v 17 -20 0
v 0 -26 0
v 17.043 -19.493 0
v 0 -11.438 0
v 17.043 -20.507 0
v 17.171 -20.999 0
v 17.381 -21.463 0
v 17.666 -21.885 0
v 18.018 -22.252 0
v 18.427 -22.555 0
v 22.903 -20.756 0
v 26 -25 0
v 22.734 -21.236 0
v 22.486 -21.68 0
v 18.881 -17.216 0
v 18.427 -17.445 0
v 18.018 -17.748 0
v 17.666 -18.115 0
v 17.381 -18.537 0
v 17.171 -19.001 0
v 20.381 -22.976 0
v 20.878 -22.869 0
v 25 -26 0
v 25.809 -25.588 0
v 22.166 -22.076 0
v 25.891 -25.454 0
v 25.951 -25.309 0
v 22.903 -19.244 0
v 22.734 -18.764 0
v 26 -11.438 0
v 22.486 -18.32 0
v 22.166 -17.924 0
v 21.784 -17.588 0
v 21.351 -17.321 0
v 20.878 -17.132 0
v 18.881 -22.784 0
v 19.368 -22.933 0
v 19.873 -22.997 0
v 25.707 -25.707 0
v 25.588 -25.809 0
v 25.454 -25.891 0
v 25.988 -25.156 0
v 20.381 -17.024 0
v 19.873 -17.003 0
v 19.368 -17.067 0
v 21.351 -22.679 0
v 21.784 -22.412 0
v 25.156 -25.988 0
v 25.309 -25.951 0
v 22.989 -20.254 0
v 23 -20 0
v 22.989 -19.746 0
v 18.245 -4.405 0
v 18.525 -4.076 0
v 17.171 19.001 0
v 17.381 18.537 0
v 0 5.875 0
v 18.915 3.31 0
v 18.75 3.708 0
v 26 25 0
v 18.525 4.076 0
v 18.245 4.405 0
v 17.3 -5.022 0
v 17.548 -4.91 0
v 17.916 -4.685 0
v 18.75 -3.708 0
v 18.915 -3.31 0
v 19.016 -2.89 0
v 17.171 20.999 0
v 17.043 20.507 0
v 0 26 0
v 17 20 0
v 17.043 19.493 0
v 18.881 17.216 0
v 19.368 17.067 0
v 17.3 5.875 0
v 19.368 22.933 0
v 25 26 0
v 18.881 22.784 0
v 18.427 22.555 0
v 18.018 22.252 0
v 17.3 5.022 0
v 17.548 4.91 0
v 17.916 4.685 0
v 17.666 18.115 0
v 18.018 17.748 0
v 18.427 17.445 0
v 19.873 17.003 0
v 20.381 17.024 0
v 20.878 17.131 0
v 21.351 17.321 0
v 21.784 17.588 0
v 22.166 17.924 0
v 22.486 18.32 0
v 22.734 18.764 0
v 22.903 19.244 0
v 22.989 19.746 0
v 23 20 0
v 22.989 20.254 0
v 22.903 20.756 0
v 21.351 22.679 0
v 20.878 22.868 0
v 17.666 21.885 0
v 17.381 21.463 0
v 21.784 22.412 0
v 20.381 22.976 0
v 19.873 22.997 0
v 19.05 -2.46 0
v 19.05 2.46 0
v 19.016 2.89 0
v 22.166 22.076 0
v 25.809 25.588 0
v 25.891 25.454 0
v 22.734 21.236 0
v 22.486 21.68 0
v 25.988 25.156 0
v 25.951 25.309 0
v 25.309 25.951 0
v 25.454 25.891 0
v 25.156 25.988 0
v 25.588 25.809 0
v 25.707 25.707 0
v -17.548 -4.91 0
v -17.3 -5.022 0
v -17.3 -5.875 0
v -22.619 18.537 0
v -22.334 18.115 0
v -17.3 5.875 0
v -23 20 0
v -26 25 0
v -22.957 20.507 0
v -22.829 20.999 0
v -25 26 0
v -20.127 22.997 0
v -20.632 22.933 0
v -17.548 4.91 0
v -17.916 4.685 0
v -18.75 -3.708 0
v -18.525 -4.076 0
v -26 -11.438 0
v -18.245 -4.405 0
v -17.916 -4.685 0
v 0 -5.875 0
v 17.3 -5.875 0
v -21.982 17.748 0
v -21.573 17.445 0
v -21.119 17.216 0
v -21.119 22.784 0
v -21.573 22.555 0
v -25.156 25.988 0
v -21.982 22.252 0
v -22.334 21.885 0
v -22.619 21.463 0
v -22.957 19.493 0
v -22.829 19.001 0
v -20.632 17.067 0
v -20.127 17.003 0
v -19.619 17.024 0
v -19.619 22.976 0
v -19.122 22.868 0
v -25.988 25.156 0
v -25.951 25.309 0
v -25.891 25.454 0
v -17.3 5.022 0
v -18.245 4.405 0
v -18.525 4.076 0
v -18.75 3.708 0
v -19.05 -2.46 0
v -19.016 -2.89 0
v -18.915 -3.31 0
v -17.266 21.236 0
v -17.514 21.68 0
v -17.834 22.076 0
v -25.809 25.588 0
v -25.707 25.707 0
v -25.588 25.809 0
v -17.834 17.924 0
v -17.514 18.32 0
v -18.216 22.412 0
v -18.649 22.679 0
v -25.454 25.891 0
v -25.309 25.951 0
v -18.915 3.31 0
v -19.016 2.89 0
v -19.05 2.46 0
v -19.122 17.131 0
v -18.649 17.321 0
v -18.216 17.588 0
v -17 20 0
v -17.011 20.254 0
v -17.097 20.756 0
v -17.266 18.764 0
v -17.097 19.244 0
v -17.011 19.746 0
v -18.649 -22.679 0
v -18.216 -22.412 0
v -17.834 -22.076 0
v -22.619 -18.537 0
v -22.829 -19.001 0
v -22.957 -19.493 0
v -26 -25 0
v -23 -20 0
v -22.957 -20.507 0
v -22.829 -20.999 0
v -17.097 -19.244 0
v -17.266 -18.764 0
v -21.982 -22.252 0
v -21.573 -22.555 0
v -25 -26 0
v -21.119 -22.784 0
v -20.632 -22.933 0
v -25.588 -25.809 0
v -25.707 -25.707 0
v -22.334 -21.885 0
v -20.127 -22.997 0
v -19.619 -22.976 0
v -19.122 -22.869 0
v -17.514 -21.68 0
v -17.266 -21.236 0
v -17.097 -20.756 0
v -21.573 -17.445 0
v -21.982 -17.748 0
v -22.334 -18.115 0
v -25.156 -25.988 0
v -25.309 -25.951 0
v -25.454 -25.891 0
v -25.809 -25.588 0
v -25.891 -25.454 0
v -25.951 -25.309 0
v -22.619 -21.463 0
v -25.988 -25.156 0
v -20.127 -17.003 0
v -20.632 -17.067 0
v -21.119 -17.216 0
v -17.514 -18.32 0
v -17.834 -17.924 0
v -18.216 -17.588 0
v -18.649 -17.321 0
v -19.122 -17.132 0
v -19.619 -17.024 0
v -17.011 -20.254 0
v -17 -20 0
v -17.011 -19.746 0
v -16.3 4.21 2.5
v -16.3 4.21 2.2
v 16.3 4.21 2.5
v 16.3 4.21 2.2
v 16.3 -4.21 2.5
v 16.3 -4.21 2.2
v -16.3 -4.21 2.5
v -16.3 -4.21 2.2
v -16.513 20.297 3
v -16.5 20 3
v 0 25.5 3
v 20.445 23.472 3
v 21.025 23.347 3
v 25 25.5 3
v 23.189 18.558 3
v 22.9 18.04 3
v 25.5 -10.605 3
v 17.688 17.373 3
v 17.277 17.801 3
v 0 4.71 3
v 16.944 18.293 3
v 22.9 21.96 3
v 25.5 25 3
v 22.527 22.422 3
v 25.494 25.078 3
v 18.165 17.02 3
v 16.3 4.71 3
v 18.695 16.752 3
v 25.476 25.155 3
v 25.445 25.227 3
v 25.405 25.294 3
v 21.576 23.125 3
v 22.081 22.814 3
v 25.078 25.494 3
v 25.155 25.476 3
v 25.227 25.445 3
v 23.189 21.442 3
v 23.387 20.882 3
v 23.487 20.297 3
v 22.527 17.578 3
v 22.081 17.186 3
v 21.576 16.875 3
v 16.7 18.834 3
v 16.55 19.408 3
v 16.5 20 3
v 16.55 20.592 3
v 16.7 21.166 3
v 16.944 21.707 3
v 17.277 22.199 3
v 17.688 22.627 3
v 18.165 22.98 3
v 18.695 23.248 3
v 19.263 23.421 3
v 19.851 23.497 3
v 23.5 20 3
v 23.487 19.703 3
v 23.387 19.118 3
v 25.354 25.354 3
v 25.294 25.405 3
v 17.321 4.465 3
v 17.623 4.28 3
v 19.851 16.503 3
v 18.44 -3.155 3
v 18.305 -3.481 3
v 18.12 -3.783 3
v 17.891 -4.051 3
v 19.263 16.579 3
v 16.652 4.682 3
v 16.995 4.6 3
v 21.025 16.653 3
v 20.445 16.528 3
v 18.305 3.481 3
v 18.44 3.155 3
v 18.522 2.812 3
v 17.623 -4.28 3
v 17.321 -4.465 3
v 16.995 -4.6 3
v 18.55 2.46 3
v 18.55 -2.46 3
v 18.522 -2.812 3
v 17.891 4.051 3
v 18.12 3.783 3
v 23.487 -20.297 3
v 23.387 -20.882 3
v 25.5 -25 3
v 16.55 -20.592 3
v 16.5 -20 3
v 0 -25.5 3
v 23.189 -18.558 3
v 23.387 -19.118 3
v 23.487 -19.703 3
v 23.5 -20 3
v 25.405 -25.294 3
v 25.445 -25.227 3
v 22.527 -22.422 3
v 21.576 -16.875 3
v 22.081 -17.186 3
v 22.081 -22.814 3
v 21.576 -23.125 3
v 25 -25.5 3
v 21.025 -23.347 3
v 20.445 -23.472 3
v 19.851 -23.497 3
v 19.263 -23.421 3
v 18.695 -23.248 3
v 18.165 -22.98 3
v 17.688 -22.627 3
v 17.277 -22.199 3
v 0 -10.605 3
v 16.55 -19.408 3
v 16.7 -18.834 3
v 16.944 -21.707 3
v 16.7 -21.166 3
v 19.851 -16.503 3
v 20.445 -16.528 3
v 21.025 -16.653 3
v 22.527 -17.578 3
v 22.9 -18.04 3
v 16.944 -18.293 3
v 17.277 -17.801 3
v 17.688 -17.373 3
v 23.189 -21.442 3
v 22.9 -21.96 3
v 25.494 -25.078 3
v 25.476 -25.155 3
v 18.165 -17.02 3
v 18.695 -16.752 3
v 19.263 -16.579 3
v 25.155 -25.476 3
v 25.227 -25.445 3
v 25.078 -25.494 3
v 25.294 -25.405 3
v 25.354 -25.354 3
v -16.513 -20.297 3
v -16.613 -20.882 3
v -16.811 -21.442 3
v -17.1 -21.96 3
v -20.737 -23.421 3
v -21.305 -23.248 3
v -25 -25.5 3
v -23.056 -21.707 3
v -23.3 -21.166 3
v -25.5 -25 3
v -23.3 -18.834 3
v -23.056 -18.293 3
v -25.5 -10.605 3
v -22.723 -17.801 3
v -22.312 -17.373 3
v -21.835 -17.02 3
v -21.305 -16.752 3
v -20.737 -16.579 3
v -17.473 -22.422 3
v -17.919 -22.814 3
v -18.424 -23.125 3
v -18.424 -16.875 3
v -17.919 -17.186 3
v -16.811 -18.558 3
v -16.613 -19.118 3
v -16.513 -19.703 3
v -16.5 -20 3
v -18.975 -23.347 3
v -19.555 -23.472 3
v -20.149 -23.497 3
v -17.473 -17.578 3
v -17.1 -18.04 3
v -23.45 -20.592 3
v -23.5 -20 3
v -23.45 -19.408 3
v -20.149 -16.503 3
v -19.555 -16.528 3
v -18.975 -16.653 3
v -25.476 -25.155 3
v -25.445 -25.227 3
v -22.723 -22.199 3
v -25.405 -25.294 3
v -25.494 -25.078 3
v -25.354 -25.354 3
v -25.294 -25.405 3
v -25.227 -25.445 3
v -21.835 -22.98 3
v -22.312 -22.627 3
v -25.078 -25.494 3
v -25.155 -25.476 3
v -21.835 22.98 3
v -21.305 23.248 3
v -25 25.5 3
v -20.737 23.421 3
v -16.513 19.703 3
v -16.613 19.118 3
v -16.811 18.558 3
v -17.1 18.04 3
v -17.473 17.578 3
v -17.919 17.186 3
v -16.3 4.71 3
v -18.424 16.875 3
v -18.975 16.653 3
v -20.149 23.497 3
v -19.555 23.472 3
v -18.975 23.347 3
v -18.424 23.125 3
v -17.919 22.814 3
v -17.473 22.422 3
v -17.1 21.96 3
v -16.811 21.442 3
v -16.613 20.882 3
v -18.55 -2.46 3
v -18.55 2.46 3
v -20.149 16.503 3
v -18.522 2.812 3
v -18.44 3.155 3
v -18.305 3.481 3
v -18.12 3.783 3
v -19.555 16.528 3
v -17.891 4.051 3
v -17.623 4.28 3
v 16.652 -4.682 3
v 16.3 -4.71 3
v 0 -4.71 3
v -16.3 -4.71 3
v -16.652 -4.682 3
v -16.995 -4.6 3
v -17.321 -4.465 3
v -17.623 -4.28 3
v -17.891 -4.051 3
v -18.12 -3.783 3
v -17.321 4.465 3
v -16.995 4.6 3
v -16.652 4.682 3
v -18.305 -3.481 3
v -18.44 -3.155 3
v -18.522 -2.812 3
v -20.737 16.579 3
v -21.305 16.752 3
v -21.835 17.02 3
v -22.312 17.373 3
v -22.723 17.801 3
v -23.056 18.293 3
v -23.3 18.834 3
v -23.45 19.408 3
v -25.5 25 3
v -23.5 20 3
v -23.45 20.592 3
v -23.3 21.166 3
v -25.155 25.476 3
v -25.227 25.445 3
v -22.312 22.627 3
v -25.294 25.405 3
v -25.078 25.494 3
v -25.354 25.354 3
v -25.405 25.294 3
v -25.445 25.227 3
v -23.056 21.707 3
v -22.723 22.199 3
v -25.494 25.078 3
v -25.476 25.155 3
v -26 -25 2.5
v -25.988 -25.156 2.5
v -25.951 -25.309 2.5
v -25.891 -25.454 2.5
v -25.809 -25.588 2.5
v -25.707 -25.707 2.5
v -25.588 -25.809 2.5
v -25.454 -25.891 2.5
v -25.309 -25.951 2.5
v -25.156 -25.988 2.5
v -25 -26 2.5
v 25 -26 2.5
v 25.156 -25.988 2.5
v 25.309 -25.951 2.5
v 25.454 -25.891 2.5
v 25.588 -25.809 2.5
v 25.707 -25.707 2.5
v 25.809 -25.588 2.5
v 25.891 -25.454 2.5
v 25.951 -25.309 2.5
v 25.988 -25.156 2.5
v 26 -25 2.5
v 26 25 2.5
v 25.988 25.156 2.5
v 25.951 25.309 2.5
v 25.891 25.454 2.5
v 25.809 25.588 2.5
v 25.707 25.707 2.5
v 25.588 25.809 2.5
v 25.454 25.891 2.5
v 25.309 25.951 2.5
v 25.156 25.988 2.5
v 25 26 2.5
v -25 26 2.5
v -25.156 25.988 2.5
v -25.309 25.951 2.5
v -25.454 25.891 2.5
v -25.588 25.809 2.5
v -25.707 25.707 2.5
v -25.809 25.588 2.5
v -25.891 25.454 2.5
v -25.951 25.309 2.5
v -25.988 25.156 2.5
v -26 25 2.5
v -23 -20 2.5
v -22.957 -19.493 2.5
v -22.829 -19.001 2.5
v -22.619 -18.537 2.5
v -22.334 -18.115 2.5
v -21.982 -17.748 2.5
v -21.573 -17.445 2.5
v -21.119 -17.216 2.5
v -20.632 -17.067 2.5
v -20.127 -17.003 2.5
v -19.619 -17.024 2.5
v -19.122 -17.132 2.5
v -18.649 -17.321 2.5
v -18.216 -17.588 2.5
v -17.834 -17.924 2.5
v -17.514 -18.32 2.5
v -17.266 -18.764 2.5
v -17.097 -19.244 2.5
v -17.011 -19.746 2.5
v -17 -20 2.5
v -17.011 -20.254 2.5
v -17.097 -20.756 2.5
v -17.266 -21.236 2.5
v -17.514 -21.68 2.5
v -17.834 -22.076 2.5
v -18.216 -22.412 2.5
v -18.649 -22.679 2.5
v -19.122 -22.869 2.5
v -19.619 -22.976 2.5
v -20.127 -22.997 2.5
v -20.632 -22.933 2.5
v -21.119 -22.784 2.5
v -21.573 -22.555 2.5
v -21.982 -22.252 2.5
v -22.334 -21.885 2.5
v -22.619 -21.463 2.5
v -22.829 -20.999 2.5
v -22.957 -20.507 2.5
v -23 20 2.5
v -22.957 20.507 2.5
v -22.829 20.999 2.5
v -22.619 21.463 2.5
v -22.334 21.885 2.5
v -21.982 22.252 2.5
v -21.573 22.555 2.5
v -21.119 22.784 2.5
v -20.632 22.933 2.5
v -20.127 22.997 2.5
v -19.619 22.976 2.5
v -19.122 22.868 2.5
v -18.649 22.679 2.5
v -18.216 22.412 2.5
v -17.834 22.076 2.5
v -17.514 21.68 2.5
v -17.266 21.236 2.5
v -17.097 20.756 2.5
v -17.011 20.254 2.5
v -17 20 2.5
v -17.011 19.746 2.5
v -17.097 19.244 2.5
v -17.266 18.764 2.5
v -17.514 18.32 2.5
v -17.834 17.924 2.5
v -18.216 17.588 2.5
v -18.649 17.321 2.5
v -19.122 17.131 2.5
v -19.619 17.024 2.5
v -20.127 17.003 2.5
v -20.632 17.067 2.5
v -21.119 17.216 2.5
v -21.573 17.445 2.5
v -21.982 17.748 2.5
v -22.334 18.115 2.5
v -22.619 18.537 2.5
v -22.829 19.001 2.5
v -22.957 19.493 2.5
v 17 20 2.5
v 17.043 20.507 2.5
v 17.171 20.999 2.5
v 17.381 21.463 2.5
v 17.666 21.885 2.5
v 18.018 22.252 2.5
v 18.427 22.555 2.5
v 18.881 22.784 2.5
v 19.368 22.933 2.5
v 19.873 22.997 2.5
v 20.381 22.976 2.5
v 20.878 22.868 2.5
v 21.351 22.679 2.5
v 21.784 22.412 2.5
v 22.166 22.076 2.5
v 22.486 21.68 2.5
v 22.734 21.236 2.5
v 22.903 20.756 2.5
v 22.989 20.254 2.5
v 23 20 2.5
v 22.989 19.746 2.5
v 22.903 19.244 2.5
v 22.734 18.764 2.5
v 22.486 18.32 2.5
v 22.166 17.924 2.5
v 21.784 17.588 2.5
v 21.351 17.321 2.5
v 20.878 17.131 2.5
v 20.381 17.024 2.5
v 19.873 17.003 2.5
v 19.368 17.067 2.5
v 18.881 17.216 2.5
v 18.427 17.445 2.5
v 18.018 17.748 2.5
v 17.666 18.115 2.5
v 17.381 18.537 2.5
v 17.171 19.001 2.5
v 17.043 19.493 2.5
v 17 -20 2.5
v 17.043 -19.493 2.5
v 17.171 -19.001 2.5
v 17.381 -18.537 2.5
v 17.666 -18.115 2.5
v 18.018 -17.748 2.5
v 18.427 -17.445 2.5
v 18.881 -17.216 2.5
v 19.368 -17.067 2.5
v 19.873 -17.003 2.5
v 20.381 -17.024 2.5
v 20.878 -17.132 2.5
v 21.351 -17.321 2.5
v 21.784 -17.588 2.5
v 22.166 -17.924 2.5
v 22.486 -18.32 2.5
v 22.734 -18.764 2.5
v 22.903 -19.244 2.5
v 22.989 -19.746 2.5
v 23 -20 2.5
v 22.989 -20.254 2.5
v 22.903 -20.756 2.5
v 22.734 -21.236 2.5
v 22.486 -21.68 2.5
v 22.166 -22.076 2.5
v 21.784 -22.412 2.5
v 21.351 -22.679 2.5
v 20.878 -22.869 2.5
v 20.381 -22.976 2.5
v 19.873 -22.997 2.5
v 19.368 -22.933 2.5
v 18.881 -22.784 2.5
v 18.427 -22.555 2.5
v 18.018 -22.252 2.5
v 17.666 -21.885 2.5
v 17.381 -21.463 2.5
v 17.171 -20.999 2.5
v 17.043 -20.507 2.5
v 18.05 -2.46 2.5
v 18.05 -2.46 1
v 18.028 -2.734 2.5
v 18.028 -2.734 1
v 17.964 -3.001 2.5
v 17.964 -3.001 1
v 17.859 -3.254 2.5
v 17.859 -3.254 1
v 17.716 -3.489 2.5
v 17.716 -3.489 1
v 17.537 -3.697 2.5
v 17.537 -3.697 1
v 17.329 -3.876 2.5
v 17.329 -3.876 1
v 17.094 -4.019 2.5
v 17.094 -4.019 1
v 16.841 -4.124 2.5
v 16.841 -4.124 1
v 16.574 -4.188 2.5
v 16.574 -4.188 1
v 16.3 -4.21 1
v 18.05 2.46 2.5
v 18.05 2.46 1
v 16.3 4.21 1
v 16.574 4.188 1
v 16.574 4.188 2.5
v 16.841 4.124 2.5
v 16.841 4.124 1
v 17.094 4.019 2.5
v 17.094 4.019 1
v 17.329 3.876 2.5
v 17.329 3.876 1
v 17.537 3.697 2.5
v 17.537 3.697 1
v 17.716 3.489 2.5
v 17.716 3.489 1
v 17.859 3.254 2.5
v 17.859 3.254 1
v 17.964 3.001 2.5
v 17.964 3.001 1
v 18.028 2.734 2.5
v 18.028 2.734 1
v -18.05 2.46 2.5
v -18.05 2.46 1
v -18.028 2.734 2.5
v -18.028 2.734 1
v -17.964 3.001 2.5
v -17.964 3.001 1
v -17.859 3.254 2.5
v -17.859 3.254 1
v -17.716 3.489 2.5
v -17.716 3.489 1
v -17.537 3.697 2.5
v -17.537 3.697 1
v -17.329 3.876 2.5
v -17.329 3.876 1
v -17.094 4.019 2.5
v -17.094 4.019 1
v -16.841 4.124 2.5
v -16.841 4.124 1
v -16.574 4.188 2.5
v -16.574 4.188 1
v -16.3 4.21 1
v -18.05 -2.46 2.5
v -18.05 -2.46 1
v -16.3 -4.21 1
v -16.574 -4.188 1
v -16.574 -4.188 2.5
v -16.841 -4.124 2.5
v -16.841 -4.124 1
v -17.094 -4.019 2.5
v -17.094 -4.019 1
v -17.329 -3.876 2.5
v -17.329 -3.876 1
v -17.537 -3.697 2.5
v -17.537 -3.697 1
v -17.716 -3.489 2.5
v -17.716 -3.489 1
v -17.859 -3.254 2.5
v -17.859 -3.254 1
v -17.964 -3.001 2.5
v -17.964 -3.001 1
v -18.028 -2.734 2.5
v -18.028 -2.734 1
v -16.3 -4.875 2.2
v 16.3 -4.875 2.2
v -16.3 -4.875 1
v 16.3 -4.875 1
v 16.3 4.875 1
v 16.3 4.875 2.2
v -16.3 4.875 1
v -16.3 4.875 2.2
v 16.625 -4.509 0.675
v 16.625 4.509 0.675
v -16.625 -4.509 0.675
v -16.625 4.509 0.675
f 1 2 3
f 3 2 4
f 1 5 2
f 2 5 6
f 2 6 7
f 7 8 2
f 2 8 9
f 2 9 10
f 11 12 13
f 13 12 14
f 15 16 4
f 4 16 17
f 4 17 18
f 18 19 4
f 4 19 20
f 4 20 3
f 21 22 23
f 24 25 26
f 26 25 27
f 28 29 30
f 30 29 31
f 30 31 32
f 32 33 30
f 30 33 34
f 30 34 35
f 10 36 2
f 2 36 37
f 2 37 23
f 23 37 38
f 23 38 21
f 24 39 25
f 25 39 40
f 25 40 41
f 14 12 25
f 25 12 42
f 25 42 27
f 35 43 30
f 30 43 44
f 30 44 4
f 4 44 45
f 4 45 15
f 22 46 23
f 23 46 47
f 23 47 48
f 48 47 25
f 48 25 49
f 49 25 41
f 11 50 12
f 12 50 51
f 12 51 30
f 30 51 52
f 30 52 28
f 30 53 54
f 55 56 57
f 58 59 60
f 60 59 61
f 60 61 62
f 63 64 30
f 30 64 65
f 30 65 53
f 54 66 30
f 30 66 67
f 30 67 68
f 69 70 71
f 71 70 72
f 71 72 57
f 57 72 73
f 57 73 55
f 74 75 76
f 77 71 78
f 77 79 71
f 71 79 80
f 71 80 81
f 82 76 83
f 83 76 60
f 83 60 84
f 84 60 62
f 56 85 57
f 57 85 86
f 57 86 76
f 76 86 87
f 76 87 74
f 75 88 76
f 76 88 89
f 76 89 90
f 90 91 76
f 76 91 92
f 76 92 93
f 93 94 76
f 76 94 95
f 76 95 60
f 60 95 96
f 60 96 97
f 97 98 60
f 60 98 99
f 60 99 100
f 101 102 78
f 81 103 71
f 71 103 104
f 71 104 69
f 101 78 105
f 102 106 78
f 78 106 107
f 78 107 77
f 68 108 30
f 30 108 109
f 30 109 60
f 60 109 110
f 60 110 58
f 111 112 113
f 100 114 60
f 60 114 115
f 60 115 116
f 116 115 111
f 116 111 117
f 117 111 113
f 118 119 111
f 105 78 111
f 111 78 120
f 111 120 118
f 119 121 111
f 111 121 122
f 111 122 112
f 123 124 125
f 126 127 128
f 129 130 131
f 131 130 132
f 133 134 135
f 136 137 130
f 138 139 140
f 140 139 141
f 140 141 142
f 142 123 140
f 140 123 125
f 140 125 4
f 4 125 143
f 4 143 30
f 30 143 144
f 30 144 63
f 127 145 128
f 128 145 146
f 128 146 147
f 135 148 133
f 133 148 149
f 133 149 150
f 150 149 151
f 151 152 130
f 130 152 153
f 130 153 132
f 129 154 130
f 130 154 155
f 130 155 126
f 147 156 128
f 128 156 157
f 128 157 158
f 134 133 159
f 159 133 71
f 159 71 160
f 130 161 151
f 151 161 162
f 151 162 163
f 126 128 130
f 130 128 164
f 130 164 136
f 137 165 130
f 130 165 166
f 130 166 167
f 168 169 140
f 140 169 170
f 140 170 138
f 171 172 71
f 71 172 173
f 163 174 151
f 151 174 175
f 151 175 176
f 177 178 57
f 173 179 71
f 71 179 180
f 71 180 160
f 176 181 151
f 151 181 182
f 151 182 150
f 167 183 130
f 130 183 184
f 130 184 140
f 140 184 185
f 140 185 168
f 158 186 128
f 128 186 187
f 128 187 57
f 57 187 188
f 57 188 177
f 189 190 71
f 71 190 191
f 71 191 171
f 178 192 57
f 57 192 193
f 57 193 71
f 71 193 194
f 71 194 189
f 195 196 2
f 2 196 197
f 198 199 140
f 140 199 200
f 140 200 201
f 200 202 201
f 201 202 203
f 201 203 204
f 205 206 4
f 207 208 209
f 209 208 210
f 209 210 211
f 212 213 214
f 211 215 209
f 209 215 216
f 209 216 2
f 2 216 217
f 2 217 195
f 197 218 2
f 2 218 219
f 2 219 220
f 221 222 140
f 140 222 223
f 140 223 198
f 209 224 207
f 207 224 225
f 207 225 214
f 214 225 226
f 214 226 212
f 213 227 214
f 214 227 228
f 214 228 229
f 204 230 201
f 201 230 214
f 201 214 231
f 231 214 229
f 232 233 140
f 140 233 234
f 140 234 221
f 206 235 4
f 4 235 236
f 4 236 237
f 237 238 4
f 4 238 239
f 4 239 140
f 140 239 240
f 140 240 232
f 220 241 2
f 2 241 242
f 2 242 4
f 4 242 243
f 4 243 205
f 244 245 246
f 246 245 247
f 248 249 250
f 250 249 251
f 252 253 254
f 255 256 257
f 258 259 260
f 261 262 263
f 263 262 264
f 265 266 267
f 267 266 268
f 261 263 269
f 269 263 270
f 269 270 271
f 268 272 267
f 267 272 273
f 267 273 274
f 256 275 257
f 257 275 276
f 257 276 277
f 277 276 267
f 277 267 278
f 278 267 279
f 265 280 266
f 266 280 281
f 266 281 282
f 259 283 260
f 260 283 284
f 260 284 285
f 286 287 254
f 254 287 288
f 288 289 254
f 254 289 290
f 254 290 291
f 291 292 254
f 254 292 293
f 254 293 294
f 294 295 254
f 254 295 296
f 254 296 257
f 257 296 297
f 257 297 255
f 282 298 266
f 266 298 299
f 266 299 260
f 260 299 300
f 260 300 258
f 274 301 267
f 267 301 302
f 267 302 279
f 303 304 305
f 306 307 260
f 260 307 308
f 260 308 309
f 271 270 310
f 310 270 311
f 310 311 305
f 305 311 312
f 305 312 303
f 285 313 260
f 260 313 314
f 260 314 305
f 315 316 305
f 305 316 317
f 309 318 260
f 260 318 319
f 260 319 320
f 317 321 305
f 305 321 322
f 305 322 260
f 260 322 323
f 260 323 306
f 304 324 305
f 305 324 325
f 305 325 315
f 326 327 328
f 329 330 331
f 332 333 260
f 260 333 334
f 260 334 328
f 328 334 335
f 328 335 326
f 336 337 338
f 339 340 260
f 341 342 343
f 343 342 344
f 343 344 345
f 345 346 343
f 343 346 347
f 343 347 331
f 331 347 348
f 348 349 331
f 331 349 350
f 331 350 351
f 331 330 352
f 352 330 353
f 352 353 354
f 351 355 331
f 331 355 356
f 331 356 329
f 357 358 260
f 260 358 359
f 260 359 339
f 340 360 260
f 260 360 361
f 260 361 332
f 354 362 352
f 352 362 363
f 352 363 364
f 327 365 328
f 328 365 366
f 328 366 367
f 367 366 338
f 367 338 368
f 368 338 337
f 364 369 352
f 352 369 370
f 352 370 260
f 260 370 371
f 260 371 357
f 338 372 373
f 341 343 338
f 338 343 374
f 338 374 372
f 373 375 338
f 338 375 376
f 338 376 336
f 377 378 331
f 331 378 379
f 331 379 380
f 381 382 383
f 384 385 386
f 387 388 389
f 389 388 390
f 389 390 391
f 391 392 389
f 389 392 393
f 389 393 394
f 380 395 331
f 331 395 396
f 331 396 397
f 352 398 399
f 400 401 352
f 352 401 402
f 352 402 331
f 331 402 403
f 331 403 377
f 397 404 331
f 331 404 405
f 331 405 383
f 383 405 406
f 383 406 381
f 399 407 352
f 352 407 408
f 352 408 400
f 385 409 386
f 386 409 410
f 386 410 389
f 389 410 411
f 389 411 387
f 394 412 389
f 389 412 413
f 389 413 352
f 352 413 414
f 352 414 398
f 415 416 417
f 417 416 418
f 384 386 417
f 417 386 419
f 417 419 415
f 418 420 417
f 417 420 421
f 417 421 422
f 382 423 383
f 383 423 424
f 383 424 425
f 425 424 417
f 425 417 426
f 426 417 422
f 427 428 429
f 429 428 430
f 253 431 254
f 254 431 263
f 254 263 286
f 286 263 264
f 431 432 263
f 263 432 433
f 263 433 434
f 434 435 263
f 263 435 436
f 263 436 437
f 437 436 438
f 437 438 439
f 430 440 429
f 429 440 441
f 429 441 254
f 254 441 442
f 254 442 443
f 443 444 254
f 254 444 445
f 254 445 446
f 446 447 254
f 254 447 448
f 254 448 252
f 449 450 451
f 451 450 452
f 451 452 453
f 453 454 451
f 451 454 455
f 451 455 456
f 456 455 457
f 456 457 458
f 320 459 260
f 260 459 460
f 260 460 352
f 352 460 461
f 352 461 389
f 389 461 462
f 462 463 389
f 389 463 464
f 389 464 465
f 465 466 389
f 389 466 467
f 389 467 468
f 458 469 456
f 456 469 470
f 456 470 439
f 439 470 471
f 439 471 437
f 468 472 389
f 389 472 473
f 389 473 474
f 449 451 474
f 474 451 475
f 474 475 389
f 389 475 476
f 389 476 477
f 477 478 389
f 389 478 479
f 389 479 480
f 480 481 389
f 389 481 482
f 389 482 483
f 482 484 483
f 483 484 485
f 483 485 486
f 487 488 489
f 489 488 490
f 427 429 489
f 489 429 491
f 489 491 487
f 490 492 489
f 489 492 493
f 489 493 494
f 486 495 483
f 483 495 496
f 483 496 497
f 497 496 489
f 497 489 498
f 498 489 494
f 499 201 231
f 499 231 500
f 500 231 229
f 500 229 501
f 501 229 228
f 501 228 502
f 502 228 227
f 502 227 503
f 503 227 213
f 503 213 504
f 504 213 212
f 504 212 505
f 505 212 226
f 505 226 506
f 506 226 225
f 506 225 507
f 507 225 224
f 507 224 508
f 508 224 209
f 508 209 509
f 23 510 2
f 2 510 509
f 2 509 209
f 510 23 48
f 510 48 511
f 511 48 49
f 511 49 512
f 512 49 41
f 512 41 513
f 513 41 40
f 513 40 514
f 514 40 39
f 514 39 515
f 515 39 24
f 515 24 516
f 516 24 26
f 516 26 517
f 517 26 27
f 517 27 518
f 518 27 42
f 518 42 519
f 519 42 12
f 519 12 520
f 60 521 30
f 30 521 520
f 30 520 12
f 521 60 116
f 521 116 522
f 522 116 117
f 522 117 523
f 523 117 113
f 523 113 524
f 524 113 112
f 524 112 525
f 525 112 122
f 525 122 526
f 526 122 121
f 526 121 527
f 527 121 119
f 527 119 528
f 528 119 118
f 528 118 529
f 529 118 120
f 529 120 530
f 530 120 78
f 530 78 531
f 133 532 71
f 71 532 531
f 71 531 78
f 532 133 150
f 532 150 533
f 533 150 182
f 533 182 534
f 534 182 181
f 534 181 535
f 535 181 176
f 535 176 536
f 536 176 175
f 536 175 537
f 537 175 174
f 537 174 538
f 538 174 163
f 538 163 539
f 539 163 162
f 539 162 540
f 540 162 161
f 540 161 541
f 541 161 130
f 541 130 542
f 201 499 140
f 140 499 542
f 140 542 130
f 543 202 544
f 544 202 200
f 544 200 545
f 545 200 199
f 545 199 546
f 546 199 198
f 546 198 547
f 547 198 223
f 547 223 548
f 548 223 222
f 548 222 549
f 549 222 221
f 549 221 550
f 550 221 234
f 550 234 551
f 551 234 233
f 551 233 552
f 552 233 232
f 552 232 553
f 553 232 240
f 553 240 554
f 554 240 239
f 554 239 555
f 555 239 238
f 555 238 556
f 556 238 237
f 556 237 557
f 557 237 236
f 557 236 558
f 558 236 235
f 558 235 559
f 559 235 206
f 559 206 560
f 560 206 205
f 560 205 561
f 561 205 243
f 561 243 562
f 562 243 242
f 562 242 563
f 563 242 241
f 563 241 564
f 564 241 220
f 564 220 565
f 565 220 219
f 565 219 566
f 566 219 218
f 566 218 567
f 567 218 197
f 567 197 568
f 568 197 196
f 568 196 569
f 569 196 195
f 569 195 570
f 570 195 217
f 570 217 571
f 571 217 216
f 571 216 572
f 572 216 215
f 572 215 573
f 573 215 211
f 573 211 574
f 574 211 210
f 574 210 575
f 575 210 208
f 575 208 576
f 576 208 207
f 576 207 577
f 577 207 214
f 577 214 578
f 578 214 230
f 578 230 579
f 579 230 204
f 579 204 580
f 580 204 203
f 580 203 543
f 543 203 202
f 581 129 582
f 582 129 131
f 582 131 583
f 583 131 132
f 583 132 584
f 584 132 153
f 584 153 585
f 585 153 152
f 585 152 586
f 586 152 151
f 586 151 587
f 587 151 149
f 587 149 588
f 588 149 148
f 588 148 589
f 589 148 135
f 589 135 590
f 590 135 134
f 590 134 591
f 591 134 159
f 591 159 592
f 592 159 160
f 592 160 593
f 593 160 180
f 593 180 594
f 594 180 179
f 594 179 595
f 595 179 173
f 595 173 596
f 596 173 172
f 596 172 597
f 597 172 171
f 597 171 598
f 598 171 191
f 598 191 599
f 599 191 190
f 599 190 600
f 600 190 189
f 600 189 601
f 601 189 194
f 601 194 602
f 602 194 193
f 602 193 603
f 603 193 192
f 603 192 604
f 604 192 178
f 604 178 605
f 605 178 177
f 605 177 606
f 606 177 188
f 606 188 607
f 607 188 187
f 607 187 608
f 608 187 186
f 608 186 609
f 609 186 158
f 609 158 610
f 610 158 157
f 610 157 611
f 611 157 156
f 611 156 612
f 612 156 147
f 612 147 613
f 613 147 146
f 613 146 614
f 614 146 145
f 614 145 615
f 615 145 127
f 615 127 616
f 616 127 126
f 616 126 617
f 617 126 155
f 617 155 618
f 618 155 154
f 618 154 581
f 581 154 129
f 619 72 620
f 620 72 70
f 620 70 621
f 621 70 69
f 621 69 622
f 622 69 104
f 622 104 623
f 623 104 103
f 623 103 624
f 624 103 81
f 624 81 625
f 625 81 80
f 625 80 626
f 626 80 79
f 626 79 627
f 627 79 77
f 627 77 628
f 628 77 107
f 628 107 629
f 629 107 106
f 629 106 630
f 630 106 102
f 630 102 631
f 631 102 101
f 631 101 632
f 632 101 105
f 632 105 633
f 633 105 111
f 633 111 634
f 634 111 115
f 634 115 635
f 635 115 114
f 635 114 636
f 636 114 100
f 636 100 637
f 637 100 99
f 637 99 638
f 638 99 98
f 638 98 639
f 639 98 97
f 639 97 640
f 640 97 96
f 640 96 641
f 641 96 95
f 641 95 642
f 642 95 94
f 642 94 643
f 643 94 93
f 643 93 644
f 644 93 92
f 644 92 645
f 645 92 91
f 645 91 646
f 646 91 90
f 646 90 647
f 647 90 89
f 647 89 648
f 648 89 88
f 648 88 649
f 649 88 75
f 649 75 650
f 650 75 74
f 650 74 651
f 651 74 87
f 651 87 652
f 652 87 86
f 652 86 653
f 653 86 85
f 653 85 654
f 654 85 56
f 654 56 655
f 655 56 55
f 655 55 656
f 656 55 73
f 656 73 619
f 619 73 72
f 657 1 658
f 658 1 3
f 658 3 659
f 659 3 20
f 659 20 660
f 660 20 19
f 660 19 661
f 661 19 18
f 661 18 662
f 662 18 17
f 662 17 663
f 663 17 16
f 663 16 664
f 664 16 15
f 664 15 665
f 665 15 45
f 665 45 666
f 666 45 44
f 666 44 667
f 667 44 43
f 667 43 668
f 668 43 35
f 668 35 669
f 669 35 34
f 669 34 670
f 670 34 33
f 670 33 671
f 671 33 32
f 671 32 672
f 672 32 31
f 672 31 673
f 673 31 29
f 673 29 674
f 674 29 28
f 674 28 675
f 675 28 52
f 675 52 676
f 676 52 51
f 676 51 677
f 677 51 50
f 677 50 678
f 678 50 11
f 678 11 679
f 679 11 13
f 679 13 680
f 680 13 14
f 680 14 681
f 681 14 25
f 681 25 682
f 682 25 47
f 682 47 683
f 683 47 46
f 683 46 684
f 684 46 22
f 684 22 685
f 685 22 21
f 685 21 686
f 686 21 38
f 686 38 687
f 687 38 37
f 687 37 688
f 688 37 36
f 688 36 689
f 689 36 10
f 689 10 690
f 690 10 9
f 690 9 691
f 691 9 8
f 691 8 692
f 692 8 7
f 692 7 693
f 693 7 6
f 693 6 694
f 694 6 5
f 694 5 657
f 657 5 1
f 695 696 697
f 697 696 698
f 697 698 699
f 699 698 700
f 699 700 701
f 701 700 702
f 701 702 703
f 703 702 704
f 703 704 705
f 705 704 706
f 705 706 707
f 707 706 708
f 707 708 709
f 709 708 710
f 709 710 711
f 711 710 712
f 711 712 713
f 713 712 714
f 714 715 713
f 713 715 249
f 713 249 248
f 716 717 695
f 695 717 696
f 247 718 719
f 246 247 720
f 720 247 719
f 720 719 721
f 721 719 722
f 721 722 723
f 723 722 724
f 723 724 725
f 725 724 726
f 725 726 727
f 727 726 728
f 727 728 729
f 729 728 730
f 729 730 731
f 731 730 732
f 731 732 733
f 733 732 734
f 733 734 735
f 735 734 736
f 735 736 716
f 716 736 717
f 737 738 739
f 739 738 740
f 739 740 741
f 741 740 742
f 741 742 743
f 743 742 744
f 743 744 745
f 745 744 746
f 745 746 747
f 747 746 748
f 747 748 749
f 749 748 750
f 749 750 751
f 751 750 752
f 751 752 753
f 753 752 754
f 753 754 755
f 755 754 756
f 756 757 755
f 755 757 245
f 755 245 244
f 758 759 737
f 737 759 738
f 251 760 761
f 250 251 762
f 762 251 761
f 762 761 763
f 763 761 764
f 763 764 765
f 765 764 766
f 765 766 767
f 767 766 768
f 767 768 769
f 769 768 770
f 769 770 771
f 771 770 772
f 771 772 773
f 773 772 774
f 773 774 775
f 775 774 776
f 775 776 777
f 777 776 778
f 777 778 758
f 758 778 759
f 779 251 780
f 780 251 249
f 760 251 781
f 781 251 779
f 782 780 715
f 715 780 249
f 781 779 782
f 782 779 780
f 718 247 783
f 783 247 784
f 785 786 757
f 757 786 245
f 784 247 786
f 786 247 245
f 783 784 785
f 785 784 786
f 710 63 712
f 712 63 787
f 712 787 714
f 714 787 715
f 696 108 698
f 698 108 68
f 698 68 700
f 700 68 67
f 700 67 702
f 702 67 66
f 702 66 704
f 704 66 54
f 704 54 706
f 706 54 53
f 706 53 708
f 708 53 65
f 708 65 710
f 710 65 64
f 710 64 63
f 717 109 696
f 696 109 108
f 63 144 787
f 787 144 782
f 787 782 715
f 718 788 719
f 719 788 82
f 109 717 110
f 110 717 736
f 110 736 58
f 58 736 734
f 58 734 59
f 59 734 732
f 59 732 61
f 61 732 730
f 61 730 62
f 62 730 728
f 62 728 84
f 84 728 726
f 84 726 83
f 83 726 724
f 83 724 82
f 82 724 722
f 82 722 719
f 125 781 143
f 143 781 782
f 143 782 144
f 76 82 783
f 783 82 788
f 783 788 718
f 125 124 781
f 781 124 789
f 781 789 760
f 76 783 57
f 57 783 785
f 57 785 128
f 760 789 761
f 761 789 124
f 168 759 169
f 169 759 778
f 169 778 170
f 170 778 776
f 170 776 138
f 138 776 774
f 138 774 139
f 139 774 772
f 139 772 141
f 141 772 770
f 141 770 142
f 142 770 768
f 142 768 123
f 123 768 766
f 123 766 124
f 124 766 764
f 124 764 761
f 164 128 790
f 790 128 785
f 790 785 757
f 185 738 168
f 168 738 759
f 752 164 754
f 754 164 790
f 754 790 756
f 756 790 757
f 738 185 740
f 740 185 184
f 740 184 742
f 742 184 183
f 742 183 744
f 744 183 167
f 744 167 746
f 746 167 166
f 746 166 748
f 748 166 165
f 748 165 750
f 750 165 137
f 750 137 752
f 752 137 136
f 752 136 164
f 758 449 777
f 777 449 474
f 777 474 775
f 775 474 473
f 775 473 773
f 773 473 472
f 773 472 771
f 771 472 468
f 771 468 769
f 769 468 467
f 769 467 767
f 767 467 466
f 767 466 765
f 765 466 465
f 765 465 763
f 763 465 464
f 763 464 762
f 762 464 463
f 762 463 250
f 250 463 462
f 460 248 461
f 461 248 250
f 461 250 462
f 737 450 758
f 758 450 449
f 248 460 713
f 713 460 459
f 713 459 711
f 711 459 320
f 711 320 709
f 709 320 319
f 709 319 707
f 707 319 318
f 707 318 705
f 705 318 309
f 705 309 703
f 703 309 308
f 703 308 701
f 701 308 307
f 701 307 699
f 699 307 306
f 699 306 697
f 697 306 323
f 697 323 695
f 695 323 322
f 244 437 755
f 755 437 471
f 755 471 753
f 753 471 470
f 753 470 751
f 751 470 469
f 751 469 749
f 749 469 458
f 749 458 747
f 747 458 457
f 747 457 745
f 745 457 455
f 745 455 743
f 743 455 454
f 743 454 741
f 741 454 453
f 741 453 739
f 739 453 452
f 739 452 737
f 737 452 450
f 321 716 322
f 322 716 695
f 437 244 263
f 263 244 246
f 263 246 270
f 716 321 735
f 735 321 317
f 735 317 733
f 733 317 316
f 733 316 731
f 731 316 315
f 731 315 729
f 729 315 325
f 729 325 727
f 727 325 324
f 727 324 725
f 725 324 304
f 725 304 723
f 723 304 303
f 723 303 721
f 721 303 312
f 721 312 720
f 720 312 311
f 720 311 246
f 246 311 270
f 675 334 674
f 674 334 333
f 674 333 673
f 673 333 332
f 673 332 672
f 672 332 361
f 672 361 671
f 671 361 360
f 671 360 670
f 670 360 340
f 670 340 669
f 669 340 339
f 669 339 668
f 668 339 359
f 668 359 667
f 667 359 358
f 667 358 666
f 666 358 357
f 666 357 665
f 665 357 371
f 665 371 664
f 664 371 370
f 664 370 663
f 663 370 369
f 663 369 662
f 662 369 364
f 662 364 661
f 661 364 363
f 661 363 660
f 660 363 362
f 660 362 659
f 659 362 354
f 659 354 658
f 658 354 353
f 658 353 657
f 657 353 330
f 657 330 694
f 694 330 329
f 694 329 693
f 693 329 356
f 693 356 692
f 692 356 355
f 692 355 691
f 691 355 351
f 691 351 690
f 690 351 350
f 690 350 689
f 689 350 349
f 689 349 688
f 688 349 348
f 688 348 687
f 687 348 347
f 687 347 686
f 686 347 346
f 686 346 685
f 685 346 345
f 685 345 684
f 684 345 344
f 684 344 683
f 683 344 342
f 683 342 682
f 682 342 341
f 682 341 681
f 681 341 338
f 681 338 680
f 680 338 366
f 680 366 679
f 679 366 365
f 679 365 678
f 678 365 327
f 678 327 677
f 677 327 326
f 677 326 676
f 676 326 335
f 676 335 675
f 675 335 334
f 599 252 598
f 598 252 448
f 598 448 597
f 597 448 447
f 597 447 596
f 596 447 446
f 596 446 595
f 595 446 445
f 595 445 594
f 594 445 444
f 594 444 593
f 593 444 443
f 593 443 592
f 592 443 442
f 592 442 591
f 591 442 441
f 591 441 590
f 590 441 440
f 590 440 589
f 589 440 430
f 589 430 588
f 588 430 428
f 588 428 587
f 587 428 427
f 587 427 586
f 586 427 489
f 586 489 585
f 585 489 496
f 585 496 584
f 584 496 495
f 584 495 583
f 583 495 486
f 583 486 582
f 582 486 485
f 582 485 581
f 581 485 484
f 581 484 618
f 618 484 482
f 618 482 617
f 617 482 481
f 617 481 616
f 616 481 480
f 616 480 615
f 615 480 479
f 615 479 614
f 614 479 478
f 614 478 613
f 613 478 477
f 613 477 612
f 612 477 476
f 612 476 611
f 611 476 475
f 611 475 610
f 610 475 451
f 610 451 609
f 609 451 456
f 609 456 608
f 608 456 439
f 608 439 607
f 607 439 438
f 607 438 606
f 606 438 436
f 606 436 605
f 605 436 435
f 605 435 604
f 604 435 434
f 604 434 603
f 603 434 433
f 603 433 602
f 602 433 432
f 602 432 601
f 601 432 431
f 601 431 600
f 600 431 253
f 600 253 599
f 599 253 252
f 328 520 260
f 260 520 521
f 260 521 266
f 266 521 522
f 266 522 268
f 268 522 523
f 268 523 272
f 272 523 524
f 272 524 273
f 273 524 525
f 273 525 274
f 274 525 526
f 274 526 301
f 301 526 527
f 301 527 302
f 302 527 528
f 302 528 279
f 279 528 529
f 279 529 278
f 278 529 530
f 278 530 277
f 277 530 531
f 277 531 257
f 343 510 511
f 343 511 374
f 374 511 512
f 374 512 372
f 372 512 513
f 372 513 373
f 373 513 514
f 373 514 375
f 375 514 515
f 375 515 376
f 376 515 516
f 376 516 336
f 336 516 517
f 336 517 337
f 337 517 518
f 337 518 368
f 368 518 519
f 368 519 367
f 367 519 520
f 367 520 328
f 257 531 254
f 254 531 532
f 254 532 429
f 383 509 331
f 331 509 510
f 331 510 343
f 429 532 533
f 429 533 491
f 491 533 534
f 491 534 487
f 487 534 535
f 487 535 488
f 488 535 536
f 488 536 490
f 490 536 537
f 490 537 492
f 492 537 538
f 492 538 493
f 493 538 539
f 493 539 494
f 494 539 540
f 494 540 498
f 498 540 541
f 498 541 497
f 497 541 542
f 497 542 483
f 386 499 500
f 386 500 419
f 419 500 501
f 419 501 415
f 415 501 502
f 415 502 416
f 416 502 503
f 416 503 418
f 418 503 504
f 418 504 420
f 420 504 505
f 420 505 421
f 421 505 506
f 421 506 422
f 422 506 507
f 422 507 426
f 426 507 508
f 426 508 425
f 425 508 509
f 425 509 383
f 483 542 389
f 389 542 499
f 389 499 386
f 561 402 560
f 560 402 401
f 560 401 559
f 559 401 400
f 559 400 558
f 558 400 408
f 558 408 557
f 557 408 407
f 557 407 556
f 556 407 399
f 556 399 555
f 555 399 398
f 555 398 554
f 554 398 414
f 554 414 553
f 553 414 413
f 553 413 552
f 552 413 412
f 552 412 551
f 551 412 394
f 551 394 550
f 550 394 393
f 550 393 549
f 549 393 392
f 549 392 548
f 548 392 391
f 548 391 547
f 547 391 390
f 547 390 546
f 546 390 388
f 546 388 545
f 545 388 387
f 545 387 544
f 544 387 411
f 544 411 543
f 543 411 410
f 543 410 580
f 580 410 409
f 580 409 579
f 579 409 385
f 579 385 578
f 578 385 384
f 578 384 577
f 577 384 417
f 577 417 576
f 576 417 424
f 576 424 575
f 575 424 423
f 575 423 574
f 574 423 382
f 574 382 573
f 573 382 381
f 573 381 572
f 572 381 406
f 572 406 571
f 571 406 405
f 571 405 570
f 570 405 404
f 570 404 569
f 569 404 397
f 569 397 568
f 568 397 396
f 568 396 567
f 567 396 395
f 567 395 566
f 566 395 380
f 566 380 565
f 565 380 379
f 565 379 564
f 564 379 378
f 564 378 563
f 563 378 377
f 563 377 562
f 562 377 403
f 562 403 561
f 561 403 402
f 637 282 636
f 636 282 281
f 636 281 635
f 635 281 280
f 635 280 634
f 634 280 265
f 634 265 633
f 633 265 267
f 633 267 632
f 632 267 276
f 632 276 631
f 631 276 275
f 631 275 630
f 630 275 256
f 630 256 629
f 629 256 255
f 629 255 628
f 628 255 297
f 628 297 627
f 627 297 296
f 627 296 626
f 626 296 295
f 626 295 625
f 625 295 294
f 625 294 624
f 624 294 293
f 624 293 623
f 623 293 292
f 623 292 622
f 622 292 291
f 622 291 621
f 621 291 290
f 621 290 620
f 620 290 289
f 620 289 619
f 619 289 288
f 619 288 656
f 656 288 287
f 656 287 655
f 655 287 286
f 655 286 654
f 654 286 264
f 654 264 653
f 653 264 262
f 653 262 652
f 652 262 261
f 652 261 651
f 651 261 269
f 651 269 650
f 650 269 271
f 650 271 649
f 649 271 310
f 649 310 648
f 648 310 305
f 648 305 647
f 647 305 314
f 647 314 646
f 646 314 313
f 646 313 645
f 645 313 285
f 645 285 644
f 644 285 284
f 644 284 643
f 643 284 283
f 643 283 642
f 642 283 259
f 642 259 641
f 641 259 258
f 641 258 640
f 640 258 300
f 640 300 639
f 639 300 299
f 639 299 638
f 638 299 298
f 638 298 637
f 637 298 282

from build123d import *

# Parameters (mm, degrees)
SKETCH1_R           = 3
BOSS_EXTRUDE1_DEPTH = 3
SKETCH2_W           = 32.6
SKETCH2_H           = 9.75
CUT_EXTRUDE1_DEPTH  = 2.2
CHAMFER1_SIZE       = 1
CHAMFER3_SIZE       = 0.5


with BuildPart() as part:
    # Sketch1 → Boss-Extrude1 (new body)
    with BuildSketch(Plane(origin=(0, 0, 0), x_dir=(0, 1, 0), z_dir=(0, 0, 1))):
        with BuildLine():
            Line((-25, 26), (25, 26))
            ThreePointArc((25, 26), (25.707106781, 25.707106781), (26, 25))
            Line((26, 25), (26, 6.375))
            Line((26, 6.375), (26, -6.375))
            Line((26, -6.375), (26, -25))
            ThreePointArc((26, -25), (25.707106781, -25.707106781), (25, -26))
            Line((25, -26), (-25, -26))
            ThreePointArc((-25, -26), (-25.707106781, -25.707106781), (-26, -25))
            Line((-26, -25), (-26, -6.375))
            Line((-26, -6.375), (-26, 6.375))
            Line((-26, 6.375), (-26, 25))
            ThreePointArc((-26, 25), (-25.707106781, 25.707106781), (-25, 26))
        make_face()
        with Locations(Location((-20, 20, 0), (0, 0, 270))):
            Circle(SKETCH1_R, mode=Mode.SUBTRACT)
        with Locations(Location((20, 20, 0), (0, 0, 270))):
            Circle(SKETCH1_R, mode=Mode.SUBTRACT)
        with Locations(Location((20, -20, 0), (0, 0, 270))):
            Circle(SKETCH1_R, mode=Mode.SUBTRACT)
        with Locations(Location((-20, -20, 0), (0, 0, 270))):
            Circle(SKETCH1_R, mode=Mode.SUBTRACT)
        with BuildLine():
            Line((-2.46, 18.05), (2.46, 18.05))
            ThreePointArc((2.46, 18.05), (3.697436867, 17.537436867), (4.21, 16.3))
            Line((4.21, 16.3), (4.21, -16.3))
            ThreePointArc((4.21, -16.3), (3.697436867, -17.537436867), (2.46, -18.05))
            Line((2.46, -18.05), (-2.46, -18.05))
            ThreePointArc((-2.46, -18.05), (-3.697436867, -17.537436867), (-4.21, -16.3))
            Line((-4.21, -16.3), (-4.21, 16.3))
            ThreePointArc((-4.21, 16.3), (-3.697436867, 17.537436867), (-2.46, 18.05))
        make_face(mode=Mode.SUBTRACT)
    extrude(amount=BOSS_EXTRUDE1_DEPTH)

    # Sketch2 → Cut-Extrude1 (cut)
    with BuildSketch(Plane(origin=(0, 0, 0), x_dir=(1, 0, 0), z_dir=(0, 0, -1))):
        Rectangle(SKETCH2_W, SKETCH2_H)
    extrude(amount=-CUT_EXTRUDE1_DEPTH, mode=Mode.SUBTRACT)

    # Chamfer1
    chamfer1_edges = [part.edges().sort_by_distance(p)[0] for p in [
        (17.537436867, -3.697436867, 0),
        (18.05, 0, 0),
        (17.537436867, 3.697436867, 0),
        (-17.537436867, 3.697436867, 0),
        (-18.05, 0, 0),
        (-17.537436867, -3.697436867, 0),
        (16.3, 4.5425, 0),
        (-16.3, 4.5425, 0),
        (0, 4.875, 0),
        (-16.3, -4.5425, 0),
        (16.3, -4.5425, 0),
        (0, -4.875, 0),
    ]]
    chamfer(chamfer1_edges, length=CHAMFER1_SIZE)

    # Chamfer3
    chamfer3_edges = [part.edges().sort_by_distance(p)[0] for p in [
        (25.707106781, -25.707106781, 3),
        (26, 0, 3),
        (25.707106781, 25.707106781, 3),
        (0, 26, 3),
        (-23, -20, 3),
        (-23, 20, 3),
        (17, 20, 3),
        (-25.707106781, 25.707106781, 3),
        (17, -20, 3),
        (-26, 0, 3),
        (-25.707106781, -25.707106781, 3),
        (17.537436867, -3.697436867, 3),
        (18.05, 0, 3),
        (17.537436867, 3.697436867, 3),
        (0, 4.21, 3),
        (-17.537436867, 3.697436867, 3),
        (-18.05, 0, 3),
        (-17.537436867, -3.697436867, 3),
        (0, -4.21, 3),
        (0, -26, 3),
    ]]
    chamfer(chamfer3_edges, length=CHAMFER3_SIZE)


solid = part.part
